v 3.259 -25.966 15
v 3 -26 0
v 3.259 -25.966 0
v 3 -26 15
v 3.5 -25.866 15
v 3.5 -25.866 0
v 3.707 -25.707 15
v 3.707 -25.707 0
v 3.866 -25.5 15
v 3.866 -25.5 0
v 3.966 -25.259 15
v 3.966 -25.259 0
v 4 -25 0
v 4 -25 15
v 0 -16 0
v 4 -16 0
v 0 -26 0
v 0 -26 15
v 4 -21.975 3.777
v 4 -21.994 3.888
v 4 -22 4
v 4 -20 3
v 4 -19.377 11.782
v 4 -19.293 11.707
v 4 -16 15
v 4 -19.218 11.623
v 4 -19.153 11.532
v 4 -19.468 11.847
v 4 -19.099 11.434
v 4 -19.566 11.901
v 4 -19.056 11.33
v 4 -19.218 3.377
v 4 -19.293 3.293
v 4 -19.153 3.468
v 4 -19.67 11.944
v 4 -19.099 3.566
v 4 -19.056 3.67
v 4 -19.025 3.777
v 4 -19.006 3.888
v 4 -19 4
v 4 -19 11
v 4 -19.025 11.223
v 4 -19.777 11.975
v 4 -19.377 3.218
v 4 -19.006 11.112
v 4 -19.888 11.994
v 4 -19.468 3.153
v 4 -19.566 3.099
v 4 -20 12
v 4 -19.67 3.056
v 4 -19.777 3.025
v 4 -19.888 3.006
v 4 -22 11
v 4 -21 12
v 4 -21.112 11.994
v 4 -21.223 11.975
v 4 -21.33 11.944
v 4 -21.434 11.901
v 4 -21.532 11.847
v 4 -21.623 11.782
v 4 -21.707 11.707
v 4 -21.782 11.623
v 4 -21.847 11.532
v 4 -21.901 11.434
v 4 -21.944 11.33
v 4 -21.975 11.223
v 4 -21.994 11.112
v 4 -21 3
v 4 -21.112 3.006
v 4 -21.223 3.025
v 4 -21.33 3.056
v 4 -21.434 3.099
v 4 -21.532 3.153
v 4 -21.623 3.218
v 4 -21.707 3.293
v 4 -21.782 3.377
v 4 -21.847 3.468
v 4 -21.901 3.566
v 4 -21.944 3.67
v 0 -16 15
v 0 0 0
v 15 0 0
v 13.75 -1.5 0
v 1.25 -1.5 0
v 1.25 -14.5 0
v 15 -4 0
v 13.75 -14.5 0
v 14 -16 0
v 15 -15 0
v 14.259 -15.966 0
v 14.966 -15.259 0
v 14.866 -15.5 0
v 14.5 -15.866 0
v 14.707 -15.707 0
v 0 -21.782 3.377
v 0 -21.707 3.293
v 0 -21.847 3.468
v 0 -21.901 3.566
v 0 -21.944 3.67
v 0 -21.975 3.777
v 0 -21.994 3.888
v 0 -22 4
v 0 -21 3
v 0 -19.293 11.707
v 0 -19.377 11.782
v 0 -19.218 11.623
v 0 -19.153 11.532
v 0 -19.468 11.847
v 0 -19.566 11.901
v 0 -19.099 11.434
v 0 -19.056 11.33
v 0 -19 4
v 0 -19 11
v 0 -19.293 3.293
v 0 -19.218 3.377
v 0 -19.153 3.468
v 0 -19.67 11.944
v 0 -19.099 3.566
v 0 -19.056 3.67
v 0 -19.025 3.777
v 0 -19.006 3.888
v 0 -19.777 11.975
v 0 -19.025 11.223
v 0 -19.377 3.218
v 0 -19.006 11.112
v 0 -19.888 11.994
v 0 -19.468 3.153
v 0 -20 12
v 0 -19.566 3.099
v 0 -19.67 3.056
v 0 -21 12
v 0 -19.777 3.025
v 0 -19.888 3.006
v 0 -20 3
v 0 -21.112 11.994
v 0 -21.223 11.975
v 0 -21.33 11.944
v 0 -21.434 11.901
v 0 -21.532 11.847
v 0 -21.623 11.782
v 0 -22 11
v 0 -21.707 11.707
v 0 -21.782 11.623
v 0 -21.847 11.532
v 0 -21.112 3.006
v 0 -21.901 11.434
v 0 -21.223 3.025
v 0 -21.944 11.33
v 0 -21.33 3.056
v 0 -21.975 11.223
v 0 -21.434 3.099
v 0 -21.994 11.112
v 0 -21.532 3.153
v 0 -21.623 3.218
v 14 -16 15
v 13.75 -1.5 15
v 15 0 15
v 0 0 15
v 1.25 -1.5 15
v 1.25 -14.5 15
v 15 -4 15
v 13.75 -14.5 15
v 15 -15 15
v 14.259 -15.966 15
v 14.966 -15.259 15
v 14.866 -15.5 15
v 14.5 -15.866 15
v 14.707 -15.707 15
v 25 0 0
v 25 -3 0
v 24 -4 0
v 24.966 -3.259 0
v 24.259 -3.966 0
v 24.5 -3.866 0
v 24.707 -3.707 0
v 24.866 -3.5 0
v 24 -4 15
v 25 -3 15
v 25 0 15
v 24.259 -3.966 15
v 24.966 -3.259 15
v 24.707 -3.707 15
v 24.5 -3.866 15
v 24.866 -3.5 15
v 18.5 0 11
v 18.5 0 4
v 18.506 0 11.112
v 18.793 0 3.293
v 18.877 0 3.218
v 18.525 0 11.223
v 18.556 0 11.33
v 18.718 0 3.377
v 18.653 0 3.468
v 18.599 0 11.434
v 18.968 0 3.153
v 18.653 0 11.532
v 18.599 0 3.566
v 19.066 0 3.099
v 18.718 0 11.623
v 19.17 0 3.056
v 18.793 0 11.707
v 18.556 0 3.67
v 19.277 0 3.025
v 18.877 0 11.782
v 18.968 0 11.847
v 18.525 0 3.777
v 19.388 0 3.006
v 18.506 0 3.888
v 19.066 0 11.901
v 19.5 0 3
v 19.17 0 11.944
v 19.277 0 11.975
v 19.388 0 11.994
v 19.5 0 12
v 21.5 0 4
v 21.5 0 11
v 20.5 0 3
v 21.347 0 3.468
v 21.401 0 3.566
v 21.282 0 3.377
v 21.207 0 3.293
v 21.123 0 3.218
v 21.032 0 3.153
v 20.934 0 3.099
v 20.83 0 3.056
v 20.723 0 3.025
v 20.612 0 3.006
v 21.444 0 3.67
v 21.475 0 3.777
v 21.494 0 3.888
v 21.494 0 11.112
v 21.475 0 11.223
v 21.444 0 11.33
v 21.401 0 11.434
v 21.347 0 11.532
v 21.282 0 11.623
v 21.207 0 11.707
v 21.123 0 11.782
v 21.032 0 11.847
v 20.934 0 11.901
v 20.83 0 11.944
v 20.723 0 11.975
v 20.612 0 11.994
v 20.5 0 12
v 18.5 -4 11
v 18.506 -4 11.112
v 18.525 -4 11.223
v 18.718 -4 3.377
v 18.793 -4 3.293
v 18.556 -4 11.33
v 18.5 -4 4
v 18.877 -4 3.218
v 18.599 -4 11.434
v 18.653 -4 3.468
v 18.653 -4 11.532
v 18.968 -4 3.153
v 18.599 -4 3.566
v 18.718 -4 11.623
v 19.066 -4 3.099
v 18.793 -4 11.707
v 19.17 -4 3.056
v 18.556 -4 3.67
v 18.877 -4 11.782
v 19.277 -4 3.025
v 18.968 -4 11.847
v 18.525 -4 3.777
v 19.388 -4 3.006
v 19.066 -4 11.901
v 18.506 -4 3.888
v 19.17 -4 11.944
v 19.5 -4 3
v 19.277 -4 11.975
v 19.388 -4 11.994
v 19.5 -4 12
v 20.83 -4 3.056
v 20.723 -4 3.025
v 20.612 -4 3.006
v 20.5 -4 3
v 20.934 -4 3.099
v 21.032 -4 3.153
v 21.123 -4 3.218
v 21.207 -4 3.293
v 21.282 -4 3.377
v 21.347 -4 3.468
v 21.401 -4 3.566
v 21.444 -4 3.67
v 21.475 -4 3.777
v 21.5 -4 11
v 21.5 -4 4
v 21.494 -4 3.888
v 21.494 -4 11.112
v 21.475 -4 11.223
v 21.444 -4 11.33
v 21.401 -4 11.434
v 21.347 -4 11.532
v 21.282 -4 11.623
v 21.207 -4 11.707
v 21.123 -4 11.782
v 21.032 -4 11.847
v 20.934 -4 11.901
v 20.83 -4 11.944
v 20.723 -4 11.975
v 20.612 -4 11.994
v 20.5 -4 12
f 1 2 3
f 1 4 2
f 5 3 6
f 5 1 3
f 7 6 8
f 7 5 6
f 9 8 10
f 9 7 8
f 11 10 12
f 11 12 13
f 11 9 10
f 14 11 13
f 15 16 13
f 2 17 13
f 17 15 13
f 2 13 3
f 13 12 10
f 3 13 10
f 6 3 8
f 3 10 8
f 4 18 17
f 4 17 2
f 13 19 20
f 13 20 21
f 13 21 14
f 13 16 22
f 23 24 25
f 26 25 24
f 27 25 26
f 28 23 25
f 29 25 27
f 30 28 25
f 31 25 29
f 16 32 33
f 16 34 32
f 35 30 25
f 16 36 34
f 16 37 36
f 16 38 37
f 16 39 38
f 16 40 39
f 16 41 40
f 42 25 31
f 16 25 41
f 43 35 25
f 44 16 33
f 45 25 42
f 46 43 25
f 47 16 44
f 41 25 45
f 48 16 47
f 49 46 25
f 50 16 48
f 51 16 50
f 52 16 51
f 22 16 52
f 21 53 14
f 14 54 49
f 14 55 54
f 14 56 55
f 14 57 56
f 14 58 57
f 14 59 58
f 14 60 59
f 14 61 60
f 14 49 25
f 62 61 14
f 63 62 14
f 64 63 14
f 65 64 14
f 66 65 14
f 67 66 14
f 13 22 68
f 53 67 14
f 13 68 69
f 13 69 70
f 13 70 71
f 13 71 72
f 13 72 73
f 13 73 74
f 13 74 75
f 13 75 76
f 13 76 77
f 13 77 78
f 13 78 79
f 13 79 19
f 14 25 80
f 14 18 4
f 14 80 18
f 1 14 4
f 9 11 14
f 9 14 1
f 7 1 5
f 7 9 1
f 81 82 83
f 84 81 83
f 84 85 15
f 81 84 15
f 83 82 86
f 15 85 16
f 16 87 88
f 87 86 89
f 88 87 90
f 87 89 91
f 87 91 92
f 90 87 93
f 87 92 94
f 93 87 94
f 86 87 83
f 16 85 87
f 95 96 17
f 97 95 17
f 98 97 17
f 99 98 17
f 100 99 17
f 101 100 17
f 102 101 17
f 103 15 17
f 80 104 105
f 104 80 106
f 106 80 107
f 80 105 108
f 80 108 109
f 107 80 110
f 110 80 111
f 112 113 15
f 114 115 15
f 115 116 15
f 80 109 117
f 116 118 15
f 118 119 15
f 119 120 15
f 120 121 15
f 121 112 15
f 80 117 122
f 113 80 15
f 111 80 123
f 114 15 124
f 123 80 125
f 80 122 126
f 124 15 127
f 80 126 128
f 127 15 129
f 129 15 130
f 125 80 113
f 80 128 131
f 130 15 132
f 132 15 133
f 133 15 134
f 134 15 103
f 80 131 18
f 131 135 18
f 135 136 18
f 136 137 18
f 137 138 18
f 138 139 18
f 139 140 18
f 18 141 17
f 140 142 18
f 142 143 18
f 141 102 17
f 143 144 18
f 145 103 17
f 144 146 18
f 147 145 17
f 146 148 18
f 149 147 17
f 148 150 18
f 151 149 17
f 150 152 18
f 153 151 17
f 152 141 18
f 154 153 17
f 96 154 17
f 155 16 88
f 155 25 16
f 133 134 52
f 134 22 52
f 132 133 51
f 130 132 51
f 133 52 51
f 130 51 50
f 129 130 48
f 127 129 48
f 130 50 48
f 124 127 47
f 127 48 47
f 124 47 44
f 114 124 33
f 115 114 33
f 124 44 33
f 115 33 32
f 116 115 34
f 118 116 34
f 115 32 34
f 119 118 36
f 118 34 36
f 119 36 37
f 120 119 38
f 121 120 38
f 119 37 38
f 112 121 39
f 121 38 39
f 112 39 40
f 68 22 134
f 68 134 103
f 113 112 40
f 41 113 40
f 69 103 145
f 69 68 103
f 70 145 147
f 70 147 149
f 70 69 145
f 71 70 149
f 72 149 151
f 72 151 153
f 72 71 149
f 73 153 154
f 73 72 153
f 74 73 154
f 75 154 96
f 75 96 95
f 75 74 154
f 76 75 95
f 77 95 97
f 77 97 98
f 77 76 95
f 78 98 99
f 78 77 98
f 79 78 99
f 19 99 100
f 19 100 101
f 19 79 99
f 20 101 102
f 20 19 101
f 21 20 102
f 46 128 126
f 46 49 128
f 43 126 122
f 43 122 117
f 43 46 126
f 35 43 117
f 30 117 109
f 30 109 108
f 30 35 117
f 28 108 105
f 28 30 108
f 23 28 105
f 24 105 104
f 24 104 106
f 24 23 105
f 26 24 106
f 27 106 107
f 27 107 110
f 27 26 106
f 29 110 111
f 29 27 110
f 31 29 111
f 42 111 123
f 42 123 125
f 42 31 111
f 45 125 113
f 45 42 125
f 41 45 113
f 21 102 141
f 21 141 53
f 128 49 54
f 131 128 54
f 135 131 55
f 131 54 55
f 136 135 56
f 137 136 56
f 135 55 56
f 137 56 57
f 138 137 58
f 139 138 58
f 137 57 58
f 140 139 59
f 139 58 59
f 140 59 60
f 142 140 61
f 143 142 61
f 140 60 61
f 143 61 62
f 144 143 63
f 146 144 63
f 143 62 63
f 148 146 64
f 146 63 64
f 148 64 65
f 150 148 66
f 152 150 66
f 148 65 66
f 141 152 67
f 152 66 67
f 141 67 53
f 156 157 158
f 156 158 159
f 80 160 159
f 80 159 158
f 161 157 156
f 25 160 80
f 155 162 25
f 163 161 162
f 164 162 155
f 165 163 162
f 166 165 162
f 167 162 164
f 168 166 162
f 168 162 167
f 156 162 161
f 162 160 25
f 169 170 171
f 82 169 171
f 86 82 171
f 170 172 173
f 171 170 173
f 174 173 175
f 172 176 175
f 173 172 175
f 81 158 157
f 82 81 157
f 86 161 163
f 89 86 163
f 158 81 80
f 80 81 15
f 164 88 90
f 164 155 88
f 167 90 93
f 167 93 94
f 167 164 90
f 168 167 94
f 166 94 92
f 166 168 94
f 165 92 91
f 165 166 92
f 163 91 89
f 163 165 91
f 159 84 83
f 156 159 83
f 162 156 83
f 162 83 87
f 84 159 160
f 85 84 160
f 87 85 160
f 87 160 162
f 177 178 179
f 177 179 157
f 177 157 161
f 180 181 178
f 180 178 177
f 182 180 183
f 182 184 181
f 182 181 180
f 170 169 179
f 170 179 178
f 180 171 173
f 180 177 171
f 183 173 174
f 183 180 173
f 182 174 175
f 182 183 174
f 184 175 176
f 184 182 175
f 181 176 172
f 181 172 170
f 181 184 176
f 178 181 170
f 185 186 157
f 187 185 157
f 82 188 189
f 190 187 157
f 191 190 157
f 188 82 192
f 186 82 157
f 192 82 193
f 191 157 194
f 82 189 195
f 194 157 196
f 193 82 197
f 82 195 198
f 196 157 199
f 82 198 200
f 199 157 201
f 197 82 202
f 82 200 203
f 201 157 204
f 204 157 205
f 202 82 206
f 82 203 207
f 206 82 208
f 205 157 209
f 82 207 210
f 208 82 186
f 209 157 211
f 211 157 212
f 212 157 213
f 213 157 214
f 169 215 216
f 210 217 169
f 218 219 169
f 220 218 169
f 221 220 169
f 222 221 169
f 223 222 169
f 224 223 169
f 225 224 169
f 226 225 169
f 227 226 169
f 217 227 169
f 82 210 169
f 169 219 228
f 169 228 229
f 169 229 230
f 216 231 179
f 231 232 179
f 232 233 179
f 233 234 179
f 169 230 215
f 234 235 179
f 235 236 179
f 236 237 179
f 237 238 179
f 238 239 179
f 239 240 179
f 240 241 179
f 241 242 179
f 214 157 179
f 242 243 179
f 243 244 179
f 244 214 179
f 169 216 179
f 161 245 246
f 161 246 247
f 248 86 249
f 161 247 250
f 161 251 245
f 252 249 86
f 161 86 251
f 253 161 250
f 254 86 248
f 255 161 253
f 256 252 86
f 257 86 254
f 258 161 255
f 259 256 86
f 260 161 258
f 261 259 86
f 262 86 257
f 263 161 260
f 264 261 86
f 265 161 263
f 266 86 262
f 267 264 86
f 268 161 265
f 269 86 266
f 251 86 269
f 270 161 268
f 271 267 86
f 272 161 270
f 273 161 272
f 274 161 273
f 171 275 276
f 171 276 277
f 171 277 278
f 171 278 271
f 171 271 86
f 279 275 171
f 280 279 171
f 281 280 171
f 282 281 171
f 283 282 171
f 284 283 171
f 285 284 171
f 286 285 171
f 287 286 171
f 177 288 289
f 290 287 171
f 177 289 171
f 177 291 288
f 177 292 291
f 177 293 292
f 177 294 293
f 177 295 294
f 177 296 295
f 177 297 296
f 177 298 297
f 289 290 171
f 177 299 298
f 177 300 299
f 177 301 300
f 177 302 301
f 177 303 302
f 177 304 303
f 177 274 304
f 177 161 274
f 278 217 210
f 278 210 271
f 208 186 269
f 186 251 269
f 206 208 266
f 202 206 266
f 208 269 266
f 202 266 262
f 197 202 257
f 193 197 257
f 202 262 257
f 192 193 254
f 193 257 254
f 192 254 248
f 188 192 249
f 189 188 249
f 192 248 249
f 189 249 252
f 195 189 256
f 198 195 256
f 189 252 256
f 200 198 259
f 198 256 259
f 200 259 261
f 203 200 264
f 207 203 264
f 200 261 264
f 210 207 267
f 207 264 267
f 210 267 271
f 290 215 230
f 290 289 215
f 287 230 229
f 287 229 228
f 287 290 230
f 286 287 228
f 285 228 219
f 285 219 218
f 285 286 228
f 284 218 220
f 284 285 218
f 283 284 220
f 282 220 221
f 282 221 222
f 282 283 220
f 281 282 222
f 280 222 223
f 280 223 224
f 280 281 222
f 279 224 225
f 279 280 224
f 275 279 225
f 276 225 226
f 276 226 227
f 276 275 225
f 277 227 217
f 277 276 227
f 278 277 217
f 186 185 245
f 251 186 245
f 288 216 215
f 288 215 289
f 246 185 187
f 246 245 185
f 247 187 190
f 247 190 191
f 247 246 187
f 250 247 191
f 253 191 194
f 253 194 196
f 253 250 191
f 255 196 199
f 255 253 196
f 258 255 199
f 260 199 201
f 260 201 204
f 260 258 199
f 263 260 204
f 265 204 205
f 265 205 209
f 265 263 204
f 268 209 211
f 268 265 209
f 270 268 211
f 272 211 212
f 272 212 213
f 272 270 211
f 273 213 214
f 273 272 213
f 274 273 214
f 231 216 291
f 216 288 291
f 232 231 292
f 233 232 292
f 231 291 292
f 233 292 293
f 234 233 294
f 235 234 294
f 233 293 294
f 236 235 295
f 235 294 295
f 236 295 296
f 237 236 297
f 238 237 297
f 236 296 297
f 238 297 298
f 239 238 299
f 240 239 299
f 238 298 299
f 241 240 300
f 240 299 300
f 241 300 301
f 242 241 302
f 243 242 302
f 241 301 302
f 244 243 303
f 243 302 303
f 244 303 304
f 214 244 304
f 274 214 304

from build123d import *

# Parameters (mm, degrees)
BOX005_W          = 3
BOX005_H          = 9
BOX005_DEPTH      = 4
FILLET001_R       = 1
BOX003_W          = 10
BOX003_H          = 15
BOX003_DEPTH      = 4
FILLET003_R       = 1
BOX001_W          = 12.5
BOX001_H          = 15
BOX001_DEPTH      = 13
BOX_W             = 15
BOX_H             = 15
BOX_DEPTH         = 16
FILLET004_R       = 1
BOX004_W          = 4
BOX004_H          = 9
BOX004_DEPTH      = 3
FILLET_R          = 1
BOX002_W          = 4
BOX002_H          = 15
BOX002_DEPTH      = 10
FILLET002_R       = 1
FUSION_ROLL_ANGLE = 90


with BuildPart() as fillet001:
    # Box005 → Box005 (new body)
    with BuildSketch(Plane(origin=(18.5, 3, 0), x_dir=(1, 0, 0), z_dir=(0, 0, 1))):
        with Locations((1.5, 4.5)):
            Rectangle(BOX005_W, BOX005_H)
    extrude(amount=BOX005_DEPTH)

    # Fillet001
    fillet001_edges = [fillet001.edges().sort_by_distance(p)[0] for p in [
        (18.5, 3, 2),
        (18.5, 12, 2),
        (21.5, 3, 2),
        (21.5, 12, 2),
    ]]
    fillet(fillet001_edges, radius=FILLET001_R)


with BuildPart() as fillet003:
    # Box003 → Box003 (new body)
    with BuildSketch(Plane(origin=(15, 0, 0), x_dir=(1, 0, 0), z_dir=(0, 0, 1))):
        with Locations((5, 7.5)):
            Rectangle(BOX003_W, BOX003_H)
    extrude(amount=BOX003_DEPTH)

    # Cut002: cut Fillet001
    add(fillet001.part, mode=Mode.SUBTRACT)

    # Fillet003
    fillet003_edges = [fillet003.edges().sort_by_distance(p)[0] for p in [
        (25, 7.5, 4),
    ]]
    fillet(fillet003_edges, radius=FILLET003_R)


with BuildPart() as cube001:
    # Box001 → Box001 (new body)
    with BuildSketch(Plane(origin=(1.25, 0, 1.5), x_dir=(1, 0, 0), z_dir=(0, 0, 1))):
        with Locations((6.25, 7.5)):
            Rectangle(BOX001_W, BOX001_H)
    extrude(amount=BOX001_DEPTH)


with BuildPart() as fillet004:
    # Box → Box (new body)
    with BuildSketch(Plane.XY):
        with Locations((7.5, 7.5)):
            Rectangle(BOX_W, BOX_H)
    extrude(amount=BOX_DEPTH)

    # Cut: cut Cube001
    add(cube001.part, mode=Mode.SUBTRACT)

    # Fillet004
    fillet004_edges = [fillet004.edges().sort_by_distance(p)[0] for p in [
        (15, 7.5, 16),
    ]]
    fillet(fillet004_edges, radius=FILLET004_R)


with BuildPart() as fillet_body:
    # Box004 → Box004 (new body)
    with BuildSketch(Plane(origin=(0, 3, 19), x_dir=(1, 0, 0), z_dir=(0, 0, 1))):
        with Locations((2, 4.5)):
            Rectangle(BOX004_W, BOX004_H)
    extrude(amount=BOX004_DEPTH)

    # Fillet
    fillet_edges = [fillet_body.edges().sort_by_distance(p)[0] for p in [
        (2, 3, 19),
        (2, 3, 22),
        (2, 12, 19),
        (2, 12, 22),
    ]]
    fillet(fillet_edges, radius=FILLET_R)


with BuildPart() as fusion:
    # Box002 → Box002 (new body)
    with BuildSketch(Plane.XY.offset(16)):
        with Locations((2, 7.5)):
            Rectangle(BOX002_W, BOX002_H)
    extrude(amount=BOX002_DEPTH)

    # Cut001: cut Fillet body
    add(fillet_body.part, mode=Mode.SUBTRACT)

    # Fillet002
    fillet002_edges = [fusion.edges().sort_by_distance(p)[0] for p in [
        (4, 7.5, 26),
    ]]
    fillet(fillet002_edges, radius=FILLET002_R)

    # Fusion: union Fillet003, Fillet004
    add(fillet003.part)
    add(fillet004.part)


with BuildPart() as fusion_1:
    # Fusion roll: moved
    add(fusion.part.rotate(Axis((0, 0, 0), (1, 0, 0)), FUSION_ROLL_ANGLE))


with BuildPart() as fusion_2:
    # Fusion placement: moved
    add(fusion_1.part)


solid = fusion_2.part
